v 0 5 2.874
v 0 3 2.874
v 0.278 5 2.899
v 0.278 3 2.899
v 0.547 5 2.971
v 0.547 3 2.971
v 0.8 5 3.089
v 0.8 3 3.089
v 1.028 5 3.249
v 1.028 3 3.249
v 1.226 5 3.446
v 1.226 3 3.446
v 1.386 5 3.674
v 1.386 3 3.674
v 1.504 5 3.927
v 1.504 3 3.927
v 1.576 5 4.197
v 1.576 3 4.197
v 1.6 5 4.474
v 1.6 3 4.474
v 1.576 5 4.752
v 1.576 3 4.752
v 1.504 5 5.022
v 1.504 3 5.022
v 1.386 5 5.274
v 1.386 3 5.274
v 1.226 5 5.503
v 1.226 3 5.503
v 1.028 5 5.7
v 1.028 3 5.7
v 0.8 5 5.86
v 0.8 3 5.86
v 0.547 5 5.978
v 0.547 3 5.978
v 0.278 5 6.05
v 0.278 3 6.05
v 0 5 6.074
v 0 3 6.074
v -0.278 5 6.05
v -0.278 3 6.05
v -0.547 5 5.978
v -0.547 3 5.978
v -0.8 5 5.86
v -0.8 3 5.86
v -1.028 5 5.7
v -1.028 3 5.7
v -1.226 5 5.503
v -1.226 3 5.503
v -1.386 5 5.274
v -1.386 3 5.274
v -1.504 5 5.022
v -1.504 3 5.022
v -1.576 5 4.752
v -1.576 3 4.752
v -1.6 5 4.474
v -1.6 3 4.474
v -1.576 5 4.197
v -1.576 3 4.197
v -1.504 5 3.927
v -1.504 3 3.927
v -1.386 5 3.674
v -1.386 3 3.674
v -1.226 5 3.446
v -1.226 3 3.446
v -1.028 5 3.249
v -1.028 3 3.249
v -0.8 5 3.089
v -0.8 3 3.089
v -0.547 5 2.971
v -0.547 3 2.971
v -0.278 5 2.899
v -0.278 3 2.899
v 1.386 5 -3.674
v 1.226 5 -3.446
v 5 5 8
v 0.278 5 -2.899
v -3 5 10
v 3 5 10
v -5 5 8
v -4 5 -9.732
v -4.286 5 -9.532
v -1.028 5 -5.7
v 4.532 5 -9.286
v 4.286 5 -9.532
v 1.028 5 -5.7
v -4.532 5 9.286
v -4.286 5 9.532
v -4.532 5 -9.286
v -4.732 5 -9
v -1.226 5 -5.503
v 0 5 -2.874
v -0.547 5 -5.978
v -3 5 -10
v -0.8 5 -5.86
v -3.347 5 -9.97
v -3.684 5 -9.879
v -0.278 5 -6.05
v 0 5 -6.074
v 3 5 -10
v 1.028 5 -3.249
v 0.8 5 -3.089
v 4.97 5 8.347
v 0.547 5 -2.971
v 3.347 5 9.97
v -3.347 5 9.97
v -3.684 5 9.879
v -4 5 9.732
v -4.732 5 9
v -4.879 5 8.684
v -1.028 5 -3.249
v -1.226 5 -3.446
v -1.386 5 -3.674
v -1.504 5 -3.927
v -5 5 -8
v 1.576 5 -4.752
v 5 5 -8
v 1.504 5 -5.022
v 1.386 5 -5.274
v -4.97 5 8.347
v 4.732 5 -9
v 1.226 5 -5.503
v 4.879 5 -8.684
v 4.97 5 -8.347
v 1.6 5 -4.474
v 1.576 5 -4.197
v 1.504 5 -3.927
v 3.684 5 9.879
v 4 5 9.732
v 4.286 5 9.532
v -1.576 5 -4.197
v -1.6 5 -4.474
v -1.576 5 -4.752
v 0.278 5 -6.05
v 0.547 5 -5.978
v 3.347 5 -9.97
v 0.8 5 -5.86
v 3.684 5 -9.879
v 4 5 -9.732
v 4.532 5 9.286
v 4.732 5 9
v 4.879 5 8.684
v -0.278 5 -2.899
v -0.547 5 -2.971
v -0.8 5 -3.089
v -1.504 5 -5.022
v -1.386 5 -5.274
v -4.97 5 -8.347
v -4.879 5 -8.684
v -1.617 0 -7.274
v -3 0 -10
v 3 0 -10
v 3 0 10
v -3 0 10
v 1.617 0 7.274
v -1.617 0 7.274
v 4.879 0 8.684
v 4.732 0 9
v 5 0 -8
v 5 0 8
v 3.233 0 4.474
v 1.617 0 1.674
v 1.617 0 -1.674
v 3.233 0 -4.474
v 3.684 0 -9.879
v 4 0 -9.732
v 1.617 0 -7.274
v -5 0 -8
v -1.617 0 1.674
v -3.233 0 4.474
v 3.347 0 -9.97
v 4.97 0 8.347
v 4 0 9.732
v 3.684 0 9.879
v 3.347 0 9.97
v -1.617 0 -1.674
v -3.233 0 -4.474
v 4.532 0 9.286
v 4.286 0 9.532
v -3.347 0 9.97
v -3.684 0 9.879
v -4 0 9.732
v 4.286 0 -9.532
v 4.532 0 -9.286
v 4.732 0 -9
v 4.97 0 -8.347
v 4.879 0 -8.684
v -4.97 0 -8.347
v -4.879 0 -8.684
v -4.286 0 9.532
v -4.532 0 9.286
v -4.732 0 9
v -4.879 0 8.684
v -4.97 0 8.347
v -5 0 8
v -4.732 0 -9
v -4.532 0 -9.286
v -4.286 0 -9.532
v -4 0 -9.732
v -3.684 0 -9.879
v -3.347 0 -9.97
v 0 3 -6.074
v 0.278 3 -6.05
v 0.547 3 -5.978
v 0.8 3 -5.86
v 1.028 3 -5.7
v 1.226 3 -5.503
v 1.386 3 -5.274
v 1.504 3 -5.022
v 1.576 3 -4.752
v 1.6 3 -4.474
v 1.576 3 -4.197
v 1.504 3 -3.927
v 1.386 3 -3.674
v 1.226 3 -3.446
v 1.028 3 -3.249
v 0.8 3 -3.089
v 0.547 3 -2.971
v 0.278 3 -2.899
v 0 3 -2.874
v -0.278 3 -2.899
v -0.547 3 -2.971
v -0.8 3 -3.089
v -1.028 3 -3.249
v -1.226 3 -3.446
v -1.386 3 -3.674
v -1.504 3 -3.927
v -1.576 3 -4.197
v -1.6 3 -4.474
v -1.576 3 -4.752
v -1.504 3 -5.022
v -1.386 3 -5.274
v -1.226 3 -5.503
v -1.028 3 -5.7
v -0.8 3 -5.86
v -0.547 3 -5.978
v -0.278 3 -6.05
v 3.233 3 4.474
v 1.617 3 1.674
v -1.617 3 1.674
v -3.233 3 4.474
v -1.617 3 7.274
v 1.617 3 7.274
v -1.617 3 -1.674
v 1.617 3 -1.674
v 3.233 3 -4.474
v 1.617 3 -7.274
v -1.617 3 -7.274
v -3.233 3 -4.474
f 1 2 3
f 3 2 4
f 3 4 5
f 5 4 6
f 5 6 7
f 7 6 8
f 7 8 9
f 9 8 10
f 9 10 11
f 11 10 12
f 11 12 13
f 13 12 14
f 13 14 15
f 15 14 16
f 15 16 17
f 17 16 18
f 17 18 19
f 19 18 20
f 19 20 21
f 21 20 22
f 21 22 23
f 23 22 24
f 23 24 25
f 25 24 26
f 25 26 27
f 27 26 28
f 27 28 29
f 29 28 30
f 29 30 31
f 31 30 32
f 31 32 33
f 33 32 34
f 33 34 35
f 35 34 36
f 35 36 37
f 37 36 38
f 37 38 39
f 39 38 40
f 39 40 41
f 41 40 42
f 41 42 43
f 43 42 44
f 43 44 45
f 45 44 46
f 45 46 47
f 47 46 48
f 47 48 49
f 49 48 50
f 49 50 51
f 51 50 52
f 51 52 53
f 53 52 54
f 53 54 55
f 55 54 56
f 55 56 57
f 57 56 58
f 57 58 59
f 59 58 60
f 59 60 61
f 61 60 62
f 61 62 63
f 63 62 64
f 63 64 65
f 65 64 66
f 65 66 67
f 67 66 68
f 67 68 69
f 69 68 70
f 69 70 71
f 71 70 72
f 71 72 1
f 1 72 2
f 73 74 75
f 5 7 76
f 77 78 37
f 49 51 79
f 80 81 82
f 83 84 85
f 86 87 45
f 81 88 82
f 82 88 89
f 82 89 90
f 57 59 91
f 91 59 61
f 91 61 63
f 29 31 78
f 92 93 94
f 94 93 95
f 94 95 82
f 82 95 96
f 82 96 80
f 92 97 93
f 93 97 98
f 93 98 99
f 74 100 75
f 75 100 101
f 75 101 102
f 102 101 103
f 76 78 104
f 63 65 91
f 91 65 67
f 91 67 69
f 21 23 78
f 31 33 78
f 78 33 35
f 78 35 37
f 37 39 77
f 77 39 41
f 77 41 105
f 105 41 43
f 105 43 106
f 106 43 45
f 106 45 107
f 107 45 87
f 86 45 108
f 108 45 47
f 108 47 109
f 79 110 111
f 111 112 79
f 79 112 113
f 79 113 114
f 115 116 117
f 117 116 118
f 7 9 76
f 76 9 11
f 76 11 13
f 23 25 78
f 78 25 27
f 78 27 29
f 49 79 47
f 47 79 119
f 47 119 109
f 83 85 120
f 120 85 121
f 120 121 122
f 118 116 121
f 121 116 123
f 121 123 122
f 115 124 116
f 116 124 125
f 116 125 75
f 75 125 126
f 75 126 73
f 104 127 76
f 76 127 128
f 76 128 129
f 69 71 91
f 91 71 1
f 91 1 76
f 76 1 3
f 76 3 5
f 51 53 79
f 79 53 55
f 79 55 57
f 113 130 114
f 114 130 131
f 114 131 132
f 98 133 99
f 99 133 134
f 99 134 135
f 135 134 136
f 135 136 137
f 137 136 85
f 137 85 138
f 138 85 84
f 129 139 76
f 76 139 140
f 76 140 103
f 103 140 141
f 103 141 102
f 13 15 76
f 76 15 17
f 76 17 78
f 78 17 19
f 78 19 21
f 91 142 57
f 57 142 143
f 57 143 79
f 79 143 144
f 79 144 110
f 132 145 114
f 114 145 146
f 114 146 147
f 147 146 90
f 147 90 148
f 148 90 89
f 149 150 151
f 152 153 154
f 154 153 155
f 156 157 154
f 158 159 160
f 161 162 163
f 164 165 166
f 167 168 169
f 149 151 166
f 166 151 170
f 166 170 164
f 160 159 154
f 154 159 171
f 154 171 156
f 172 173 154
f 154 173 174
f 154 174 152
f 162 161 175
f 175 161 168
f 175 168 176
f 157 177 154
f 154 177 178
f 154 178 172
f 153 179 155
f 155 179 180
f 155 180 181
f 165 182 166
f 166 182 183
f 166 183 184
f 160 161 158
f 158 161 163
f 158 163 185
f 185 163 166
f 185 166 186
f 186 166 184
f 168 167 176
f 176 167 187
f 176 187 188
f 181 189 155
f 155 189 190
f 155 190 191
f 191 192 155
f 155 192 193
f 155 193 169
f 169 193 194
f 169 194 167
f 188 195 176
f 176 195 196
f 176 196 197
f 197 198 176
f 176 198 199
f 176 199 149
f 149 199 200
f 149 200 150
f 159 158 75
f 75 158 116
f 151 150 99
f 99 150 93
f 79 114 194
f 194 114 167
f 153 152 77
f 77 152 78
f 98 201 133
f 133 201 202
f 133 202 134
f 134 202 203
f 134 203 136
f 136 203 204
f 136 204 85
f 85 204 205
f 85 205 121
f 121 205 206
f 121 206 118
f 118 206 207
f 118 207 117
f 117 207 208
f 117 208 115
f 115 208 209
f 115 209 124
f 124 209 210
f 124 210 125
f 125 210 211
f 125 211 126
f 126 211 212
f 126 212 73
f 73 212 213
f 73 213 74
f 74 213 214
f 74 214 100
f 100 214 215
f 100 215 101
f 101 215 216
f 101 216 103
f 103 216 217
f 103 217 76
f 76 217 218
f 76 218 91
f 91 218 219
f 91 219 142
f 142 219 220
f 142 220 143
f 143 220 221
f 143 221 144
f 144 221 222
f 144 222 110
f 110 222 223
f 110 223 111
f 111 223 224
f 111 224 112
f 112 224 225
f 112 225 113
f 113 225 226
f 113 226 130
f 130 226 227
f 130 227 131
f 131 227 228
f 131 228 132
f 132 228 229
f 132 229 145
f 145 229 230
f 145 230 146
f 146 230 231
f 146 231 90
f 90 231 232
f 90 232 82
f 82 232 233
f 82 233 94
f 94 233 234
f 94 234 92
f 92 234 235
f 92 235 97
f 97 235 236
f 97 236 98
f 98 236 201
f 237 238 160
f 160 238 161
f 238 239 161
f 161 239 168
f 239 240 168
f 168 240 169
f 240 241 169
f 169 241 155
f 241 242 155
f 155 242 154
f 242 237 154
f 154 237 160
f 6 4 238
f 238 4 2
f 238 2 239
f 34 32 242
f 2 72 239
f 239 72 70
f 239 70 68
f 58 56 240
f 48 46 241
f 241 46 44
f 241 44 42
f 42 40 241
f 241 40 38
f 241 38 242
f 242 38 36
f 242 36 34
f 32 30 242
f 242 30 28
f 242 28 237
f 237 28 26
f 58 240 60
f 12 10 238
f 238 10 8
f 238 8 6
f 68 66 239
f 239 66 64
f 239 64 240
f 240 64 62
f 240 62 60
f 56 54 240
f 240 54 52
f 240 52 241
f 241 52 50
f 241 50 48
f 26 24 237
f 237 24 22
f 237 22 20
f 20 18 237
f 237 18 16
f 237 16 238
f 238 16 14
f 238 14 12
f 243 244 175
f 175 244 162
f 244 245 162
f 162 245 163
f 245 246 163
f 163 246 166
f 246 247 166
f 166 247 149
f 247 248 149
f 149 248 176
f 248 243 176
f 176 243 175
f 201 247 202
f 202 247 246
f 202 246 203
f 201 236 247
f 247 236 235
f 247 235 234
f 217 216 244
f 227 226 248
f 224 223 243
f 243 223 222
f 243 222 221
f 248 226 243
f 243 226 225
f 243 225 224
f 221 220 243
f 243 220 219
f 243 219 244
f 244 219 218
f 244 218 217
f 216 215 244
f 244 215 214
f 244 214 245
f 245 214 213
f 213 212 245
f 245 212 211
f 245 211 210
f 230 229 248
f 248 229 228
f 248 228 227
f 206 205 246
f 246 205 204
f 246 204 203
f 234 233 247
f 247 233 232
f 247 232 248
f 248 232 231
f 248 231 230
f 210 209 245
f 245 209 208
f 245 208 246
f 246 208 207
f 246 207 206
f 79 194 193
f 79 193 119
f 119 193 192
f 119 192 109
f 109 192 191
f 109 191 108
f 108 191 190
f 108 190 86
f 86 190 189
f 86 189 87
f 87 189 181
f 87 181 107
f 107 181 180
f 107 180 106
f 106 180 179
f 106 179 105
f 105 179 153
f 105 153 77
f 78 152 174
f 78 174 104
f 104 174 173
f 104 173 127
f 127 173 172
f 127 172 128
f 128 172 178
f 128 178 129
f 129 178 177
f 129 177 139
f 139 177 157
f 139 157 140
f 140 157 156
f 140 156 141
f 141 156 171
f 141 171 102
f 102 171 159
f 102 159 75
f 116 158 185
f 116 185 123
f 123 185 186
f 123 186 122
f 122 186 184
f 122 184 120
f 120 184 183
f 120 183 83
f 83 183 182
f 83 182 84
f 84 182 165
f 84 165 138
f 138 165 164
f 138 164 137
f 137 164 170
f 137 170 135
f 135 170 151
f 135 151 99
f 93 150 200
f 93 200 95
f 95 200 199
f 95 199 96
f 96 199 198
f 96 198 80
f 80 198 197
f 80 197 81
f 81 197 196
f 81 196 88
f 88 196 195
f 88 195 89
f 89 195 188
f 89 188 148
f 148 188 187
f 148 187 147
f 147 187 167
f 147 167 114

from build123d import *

# Parameters (mm, degrees)
CROQUIS1_W              = 10
CROQUIS1_H              = 20
CROQUIS1_R              = 1.6
SALIENTE_EXTRUIR1_DEPTH = 5
CORTAR_EXTRUIR1_DEPTH   = 3
REDONDEO1_R             = 2


with BuildPart() as part:
    # Croquis1 → Saliente-Extruir1 (new body)
    with BuildSketch(Plane(origin=(0, 0, 0), x_dir=(1, 0, 0), z_dir=(0, 1, 0))):
        Rectangle(CROQUIS1_W, CROQUIS1_H)
        with Locations((0, 4.474482181)):
            Circle(CROQUIS1_R, mode=Mode.SUBTRACT)
        with Locations((0, -4.474482181)):
            Circle(CROQUIS1_R, mode=Mode.SUBTRACT)
    extrude(amount=SALIENTE_EXTRUIR1_DEPTH)

    # Croquis2 → Cortar-Extruir1 (cut)
    with BuildSketch(Plane.XZ):
        Polygon((3.233161507, 4.474482181), (1.616580754, 7.274482181), (-1.616580754, 7.274482181), (-3.233161507, 4.474482181), (-1.616580754, 1.674482181), (1.616580754, 1.674482181), align=None)
        Polygon((1.616580754, -1.674482181), (3.233161507, -4.474482181), (1.616580754, -7.274482181), (-1.616580754, -7.274482181), (-3.233161507, -4.474482181), (-1.616580754, -1.674482181), align=None)
    extrude(amount=-CORTAR_EXTRUIR1_DEPTH, mode=Mode.SUBTRACT)

    # Redondeo1
    redondeo1_edges = [part.edges().sort_by_distance(p)[0] for p in [
        (5, 2.5, 10),
        (-5, 2.5, 10),
        (-5, 2.5, -10),
        (5, 2.5, -10),
    ]]
    fillet(redondeo1_edges, radius=REDONDEO1_R)


solid = part.part
